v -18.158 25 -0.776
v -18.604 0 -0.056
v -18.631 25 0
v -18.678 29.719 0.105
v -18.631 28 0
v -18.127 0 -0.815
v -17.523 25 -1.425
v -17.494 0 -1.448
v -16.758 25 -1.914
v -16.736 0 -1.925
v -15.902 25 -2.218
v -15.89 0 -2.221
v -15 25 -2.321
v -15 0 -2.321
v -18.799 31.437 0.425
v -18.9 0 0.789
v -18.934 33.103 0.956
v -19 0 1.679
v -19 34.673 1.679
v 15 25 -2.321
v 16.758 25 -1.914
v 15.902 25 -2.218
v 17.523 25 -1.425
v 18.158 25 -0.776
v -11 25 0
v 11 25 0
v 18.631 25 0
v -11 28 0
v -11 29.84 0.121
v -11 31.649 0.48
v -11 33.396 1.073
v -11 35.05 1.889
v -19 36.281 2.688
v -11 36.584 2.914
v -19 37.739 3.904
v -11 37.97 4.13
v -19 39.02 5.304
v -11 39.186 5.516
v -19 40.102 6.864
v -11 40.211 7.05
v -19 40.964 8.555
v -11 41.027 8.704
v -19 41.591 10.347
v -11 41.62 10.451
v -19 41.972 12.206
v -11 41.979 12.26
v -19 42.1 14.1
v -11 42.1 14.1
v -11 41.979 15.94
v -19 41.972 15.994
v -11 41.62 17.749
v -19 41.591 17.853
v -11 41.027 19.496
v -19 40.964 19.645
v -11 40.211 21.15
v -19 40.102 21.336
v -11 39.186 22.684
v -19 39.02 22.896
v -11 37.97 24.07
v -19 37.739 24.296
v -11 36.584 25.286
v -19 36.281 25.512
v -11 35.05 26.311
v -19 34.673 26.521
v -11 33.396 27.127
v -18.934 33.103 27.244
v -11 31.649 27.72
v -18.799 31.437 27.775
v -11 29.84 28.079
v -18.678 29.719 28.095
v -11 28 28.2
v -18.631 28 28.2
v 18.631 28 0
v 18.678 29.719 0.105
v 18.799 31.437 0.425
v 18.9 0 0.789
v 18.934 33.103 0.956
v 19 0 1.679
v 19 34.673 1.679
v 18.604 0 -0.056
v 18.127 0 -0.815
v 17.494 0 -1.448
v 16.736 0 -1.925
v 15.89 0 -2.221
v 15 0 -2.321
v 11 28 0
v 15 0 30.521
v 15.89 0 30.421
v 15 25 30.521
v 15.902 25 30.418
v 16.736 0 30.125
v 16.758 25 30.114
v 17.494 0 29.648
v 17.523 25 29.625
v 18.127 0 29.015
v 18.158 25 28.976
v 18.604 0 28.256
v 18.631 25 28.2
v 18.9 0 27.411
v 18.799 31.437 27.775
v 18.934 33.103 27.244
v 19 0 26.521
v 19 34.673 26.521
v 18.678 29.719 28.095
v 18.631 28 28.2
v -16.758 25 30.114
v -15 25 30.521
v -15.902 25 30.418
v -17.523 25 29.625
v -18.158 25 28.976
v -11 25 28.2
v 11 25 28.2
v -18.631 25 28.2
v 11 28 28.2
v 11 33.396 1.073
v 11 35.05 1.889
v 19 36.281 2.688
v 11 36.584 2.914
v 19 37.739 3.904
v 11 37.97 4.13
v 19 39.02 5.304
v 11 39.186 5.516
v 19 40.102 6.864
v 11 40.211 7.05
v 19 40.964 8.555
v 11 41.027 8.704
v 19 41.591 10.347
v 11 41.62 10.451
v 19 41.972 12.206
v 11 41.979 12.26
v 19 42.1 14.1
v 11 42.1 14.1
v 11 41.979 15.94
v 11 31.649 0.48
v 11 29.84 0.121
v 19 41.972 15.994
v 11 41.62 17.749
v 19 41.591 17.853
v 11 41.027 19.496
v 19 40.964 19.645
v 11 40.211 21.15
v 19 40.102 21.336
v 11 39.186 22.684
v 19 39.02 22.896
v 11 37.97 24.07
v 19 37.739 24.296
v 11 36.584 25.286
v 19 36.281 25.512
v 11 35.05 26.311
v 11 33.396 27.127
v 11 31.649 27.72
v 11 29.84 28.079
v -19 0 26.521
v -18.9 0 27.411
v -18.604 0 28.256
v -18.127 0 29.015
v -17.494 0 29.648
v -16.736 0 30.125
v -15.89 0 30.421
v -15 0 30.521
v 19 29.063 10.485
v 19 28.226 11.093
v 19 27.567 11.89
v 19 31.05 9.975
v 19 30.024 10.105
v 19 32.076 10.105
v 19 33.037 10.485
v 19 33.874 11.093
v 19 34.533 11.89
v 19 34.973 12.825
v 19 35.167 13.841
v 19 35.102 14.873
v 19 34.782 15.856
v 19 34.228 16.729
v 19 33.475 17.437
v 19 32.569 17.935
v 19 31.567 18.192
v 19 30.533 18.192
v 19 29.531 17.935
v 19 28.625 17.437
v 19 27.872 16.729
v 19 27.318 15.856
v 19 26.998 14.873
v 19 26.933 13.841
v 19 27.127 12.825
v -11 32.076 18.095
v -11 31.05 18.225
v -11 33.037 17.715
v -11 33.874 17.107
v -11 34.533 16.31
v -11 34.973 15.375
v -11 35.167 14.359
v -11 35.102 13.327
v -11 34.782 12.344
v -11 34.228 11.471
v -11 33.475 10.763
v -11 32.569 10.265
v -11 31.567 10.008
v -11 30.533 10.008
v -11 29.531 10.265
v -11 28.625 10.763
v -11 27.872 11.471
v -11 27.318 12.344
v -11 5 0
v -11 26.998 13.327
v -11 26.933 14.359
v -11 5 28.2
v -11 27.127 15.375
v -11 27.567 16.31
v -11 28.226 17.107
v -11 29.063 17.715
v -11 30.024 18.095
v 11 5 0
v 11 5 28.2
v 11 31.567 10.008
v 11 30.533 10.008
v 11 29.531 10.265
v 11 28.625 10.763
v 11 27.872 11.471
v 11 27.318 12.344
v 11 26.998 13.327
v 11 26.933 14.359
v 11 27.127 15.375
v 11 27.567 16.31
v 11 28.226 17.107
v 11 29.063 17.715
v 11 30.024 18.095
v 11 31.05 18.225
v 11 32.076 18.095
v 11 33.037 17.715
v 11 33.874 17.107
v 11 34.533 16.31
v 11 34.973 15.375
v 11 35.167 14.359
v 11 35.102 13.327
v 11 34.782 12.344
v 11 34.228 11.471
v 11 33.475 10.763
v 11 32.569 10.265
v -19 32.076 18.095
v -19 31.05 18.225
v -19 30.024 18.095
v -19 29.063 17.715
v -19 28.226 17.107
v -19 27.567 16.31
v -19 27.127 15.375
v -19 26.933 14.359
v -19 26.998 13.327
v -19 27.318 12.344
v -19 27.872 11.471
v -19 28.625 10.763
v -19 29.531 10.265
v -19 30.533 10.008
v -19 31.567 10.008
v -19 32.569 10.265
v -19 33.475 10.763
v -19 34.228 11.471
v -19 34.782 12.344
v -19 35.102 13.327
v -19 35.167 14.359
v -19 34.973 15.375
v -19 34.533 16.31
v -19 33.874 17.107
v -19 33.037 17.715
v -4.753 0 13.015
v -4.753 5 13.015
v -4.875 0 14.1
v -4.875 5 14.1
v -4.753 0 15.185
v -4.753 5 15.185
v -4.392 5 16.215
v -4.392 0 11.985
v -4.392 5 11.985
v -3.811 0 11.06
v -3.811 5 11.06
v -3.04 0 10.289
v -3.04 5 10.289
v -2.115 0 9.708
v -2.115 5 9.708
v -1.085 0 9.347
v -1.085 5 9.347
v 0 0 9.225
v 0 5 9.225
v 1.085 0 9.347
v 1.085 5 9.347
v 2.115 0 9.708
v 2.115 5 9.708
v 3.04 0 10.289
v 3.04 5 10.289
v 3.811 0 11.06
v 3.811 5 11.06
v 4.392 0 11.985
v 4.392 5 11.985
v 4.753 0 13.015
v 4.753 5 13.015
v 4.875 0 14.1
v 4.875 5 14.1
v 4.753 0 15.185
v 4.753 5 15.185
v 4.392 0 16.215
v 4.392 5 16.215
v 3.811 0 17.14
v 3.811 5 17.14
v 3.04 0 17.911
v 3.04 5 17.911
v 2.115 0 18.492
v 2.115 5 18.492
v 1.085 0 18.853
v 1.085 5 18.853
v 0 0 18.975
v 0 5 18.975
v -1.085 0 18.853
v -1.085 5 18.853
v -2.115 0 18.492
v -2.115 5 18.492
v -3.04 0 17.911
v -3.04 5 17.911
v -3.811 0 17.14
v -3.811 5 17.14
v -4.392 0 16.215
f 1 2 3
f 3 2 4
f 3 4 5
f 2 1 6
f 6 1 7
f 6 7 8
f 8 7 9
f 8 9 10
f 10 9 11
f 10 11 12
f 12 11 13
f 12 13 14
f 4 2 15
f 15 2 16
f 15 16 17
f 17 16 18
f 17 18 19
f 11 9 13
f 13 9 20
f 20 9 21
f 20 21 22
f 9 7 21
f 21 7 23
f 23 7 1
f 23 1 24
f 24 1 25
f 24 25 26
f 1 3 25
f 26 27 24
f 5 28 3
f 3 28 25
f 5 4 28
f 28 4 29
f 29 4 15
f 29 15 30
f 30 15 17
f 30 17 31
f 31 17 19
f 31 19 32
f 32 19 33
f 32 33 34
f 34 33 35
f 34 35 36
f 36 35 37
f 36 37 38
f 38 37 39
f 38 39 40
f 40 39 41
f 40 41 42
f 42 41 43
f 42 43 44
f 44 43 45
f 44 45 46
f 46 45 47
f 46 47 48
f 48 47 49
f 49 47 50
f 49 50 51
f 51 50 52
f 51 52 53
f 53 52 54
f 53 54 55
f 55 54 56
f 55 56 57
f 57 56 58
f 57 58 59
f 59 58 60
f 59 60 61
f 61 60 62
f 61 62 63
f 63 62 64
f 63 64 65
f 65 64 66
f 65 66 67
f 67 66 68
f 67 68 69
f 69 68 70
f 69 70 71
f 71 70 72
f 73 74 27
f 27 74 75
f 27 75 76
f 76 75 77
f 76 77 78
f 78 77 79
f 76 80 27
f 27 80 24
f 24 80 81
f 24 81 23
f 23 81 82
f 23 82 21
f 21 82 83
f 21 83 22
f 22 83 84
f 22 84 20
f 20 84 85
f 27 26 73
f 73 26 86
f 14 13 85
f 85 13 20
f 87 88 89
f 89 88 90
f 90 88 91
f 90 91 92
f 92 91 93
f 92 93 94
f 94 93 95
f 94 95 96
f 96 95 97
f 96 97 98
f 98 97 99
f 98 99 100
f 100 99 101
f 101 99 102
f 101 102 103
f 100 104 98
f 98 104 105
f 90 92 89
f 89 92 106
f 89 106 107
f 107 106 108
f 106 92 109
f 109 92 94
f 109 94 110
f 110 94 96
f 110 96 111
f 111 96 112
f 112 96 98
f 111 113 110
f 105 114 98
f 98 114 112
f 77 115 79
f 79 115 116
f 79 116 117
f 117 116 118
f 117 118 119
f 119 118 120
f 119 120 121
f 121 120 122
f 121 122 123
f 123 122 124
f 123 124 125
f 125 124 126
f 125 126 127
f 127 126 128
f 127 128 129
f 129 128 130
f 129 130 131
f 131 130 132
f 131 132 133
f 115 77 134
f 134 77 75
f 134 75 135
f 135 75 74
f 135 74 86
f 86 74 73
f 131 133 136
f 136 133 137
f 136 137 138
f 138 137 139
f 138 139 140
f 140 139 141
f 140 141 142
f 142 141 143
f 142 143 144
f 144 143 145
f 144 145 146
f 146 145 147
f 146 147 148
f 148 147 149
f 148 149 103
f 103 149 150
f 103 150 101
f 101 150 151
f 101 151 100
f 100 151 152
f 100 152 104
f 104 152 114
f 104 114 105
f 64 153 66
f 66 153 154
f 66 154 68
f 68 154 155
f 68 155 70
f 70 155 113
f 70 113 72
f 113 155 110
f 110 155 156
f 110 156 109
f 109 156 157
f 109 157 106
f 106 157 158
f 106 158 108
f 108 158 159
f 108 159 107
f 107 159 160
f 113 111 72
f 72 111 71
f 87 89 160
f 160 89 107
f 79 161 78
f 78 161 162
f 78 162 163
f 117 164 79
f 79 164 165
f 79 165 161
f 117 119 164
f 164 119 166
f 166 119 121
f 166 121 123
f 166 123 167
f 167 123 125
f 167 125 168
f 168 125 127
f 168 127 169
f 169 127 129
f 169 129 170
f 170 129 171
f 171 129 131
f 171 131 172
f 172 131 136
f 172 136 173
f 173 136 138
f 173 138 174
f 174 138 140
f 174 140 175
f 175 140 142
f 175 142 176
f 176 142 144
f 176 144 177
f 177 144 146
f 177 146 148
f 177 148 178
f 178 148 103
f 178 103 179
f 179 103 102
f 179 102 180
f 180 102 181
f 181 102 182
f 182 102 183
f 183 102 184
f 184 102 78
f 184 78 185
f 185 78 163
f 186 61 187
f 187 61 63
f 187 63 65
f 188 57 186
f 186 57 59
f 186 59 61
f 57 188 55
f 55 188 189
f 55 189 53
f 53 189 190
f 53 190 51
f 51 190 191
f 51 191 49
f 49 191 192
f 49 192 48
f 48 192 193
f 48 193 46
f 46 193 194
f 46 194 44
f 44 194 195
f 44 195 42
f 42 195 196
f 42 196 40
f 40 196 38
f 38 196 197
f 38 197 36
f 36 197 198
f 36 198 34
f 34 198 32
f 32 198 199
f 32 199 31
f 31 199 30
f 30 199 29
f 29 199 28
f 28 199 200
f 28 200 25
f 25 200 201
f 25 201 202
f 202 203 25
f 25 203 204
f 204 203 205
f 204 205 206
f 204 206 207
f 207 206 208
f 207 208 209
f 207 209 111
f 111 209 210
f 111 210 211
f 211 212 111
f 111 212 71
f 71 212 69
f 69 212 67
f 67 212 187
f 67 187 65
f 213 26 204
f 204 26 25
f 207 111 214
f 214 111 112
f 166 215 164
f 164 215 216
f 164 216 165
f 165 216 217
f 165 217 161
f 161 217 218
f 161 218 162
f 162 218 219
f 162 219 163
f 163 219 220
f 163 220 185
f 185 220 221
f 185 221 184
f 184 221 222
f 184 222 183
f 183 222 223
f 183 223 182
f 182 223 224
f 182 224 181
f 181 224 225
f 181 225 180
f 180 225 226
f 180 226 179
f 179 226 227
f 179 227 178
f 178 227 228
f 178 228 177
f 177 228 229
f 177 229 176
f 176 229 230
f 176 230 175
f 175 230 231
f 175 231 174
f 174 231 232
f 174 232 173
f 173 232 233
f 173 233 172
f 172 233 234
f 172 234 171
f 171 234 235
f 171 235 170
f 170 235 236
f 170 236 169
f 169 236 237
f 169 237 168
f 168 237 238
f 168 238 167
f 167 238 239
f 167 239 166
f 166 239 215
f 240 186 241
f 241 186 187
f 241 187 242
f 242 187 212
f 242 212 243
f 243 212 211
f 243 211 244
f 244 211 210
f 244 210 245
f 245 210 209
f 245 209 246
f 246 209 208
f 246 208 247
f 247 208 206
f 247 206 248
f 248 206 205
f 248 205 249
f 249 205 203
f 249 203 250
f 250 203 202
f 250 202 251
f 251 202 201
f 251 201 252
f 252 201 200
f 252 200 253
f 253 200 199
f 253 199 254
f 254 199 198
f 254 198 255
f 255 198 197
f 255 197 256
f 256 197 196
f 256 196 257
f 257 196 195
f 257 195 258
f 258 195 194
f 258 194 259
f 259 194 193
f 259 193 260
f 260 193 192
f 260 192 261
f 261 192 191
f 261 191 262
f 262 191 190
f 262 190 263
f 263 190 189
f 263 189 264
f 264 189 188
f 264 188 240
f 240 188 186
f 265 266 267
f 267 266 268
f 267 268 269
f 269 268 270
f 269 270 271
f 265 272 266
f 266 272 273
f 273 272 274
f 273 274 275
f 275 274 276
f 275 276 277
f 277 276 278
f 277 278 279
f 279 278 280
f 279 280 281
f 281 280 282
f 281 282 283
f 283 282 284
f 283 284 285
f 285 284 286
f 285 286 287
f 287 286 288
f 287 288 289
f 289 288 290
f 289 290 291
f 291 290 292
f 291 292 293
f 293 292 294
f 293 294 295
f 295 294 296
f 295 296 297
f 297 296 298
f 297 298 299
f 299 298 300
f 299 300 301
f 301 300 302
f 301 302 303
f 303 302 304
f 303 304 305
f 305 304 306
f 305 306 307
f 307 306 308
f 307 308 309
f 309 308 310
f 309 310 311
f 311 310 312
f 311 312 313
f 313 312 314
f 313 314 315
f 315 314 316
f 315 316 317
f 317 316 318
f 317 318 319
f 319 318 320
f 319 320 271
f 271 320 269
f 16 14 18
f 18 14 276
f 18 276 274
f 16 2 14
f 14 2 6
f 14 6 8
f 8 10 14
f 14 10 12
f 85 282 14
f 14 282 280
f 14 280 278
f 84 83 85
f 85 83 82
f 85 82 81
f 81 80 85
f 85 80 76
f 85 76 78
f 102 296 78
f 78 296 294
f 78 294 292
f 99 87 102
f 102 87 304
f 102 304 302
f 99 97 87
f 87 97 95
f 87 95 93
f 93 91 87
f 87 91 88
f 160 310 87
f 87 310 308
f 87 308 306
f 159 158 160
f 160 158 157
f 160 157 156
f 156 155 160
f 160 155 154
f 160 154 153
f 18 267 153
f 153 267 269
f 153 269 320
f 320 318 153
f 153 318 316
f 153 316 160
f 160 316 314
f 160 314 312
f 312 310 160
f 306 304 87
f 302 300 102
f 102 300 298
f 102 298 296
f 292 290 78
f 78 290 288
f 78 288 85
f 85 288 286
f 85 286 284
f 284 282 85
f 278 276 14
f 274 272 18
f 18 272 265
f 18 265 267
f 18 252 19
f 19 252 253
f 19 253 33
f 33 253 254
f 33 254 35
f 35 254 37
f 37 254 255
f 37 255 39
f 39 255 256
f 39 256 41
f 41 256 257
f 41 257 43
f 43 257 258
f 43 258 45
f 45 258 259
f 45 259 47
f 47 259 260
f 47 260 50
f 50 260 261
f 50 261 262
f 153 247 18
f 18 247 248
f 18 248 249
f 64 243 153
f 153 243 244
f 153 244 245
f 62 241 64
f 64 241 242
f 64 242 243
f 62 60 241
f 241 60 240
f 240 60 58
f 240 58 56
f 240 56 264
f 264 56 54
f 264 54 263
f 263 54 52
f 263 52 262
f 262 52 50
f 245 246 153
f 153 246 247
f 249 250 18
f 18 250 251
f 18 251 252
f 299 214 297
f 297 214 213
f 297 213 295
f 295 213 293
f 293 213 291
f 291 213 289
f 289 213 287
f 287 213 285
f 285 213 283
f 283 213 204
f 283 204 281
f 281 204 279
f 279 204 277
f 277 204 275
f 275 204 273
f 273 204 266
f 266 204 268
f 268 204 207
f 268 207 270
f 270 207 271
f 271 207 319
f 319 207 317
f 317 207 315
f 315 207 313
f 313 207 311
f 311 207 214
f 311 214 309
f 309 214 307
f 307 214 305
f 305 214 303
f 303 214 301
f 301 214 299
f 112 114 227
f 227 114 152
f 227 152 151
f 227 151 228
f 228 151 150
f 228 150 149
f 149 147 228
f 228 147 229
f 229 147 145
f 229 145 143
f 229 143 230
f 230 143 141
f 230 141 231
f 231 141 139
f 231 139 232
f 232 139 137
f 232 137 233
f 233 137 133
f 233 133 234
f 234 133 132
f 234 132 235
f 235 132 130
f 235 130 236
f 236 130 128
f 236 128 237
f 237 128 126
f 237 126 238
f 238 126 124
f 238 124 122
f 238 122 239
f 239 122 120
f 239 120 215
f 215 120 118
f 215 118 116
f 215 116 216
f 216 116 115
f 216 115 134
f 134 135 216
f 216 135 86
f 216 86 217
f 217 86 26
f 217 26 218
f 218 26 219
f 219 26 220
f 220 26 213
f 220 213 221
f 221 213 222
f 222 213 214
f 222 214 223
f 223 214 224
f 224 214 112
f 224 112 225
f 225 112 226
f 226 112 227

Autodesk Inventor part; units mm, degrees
ref_plane "YZ Plane" through (0, 0, 0) normal (1, 0, 0) x (0, 1, 0)
ref_plane "XZ Plane" through (0, 0, 0) normal (0, 1, 0) x (-1, 0, 0)
ref_plane "XY Plane" through (0, 0, 0) normal (0, 0, 1) x (1, 0, 0)
sketch "Sketch1" plane through (0, 0, 0) normal (0, 0, 1) x (1, 0, 0)
  line L0 (-19, 0) -> (19, 0)
  line L1 (19, 0) -> (19, 42.1)
  line L2 (19, 42.1) -> (11, 42.1)
  line L3 (11, 42.1) -> (11, 5)
  line L4 (11, 5) -> (-11, 5)
  line L5 (-11, 5) -> (-11, 42.1)
  line L6 (-11, 42.1) -> (-19, 42.1)
  line L7 (-19, 42.1) -> (-19, 0)
  point P0 (0, 0)
  dimension "d0" = 22
  dimension "d1" = 5
  dimension "d2" = 37.1
  dimension "d14" = 8
  dimension "d15" = 8
  dimension "d26" = 47.0273
extrude "Extrusion1" add sketch "Sketch1" along normal blind 28.2
sketch "Sketch2" plane through (-11, 5, 0) normal (0, 1, 0) x (1, 0, 0)
  circle A0 centre (11, -14.1) radius 4.875
  line L0 (22, 0) -> (0, 0) projected
  line L1 (-8, 0) -> (-8, -28.2) projected
  point P0 (11, 0)
  point P1 (11, 0)
  point P2 (-8, -14.1)
  dimension "d6" = 9.75
extrude "Extrusion2" cut sketch "Sketch2" against normal up to next
sketch "Sketch3" plane through (19, 0, 0) normal (1, 0, 0) x (0, 0, -1)
  line L0 (0, 5) -> (-28.2, 5) projected
  circle A0 centre (-14.1, 31.05) radius 4.125
  line L1 (0, 0) -> (0, 42.1) projected
  line L2 (0, 42.1) -> (-28.2, 42.1) projected
  point P0 (-14.1, 42.1)
  dimension "d9" = 8.25
  dimension "d11" = 26.05
extrude "Extrusion3" cut sketch "Sketch3" against normal through all
sketch "Sketch4" plane through (19, 0, 0) normal (1, 0, 0) x (0, 0, -1)
  line L0 (-28.2, 0) -> (-28.2, 42.1) projected
  line L1 (-28.2, 27.157) -> (-28.2, 0)
  circle A0 centre (-14.1, 31.05) radius 17.5
  circle A1 centre (-14.1, 31.05) radius 14.1
  line L2 (-28.2, 0) -> (-30.5209, 0)
  line L3 (-30.5209, 0) -> (-30.5209, 25)
  line L4 (-30.5209, 25) -> (-28.2, 25)
  line L5 (-28.2, 25) -> (-28.2, 0)
  line L6 (0, 0) -> (2.3209, 0)
  line L7 (2.3209, 0) -> (2.3209, 25)
  line L8 (2.3209, 25) -> (0, 25)
  line L9 (0, 25) -> (0, 0)
  dimension "d23" = 35
  dimension "d24" = 28.2
  dimension "d25" = 25
extrude "Extrusion4" add sketch "Sketch4" against normal up to surface (38 mm away) contours L0 A0 L4 | L0 L2 L3 A0 | L9 L8 A0 | A0 L7 L6 L9 picked at (-28.5025, 22.5777)
full round fillet "Full Round Fillet1" first side at (-13.6667, 36.4, 28.2) centre faces at (-13.6667, 42.1, 9.4) second side at (-13.6667, 36.4, 0)
full round fillet "Full Round Fillet2" first side at (13.6667, 36.4, 28.2) centre faces at (16.3333, 42.1, 9.4) second side at (13.6667, 36.4, 0)
fillet "Fillet1" radius 4 4 edges at (-19, 12.5, 30.5209) (19, 12.5, 30.5209) (19, 12.5, -2.3209) (-19, 12.5, -2.3209)
properties part number "pulley_base"
